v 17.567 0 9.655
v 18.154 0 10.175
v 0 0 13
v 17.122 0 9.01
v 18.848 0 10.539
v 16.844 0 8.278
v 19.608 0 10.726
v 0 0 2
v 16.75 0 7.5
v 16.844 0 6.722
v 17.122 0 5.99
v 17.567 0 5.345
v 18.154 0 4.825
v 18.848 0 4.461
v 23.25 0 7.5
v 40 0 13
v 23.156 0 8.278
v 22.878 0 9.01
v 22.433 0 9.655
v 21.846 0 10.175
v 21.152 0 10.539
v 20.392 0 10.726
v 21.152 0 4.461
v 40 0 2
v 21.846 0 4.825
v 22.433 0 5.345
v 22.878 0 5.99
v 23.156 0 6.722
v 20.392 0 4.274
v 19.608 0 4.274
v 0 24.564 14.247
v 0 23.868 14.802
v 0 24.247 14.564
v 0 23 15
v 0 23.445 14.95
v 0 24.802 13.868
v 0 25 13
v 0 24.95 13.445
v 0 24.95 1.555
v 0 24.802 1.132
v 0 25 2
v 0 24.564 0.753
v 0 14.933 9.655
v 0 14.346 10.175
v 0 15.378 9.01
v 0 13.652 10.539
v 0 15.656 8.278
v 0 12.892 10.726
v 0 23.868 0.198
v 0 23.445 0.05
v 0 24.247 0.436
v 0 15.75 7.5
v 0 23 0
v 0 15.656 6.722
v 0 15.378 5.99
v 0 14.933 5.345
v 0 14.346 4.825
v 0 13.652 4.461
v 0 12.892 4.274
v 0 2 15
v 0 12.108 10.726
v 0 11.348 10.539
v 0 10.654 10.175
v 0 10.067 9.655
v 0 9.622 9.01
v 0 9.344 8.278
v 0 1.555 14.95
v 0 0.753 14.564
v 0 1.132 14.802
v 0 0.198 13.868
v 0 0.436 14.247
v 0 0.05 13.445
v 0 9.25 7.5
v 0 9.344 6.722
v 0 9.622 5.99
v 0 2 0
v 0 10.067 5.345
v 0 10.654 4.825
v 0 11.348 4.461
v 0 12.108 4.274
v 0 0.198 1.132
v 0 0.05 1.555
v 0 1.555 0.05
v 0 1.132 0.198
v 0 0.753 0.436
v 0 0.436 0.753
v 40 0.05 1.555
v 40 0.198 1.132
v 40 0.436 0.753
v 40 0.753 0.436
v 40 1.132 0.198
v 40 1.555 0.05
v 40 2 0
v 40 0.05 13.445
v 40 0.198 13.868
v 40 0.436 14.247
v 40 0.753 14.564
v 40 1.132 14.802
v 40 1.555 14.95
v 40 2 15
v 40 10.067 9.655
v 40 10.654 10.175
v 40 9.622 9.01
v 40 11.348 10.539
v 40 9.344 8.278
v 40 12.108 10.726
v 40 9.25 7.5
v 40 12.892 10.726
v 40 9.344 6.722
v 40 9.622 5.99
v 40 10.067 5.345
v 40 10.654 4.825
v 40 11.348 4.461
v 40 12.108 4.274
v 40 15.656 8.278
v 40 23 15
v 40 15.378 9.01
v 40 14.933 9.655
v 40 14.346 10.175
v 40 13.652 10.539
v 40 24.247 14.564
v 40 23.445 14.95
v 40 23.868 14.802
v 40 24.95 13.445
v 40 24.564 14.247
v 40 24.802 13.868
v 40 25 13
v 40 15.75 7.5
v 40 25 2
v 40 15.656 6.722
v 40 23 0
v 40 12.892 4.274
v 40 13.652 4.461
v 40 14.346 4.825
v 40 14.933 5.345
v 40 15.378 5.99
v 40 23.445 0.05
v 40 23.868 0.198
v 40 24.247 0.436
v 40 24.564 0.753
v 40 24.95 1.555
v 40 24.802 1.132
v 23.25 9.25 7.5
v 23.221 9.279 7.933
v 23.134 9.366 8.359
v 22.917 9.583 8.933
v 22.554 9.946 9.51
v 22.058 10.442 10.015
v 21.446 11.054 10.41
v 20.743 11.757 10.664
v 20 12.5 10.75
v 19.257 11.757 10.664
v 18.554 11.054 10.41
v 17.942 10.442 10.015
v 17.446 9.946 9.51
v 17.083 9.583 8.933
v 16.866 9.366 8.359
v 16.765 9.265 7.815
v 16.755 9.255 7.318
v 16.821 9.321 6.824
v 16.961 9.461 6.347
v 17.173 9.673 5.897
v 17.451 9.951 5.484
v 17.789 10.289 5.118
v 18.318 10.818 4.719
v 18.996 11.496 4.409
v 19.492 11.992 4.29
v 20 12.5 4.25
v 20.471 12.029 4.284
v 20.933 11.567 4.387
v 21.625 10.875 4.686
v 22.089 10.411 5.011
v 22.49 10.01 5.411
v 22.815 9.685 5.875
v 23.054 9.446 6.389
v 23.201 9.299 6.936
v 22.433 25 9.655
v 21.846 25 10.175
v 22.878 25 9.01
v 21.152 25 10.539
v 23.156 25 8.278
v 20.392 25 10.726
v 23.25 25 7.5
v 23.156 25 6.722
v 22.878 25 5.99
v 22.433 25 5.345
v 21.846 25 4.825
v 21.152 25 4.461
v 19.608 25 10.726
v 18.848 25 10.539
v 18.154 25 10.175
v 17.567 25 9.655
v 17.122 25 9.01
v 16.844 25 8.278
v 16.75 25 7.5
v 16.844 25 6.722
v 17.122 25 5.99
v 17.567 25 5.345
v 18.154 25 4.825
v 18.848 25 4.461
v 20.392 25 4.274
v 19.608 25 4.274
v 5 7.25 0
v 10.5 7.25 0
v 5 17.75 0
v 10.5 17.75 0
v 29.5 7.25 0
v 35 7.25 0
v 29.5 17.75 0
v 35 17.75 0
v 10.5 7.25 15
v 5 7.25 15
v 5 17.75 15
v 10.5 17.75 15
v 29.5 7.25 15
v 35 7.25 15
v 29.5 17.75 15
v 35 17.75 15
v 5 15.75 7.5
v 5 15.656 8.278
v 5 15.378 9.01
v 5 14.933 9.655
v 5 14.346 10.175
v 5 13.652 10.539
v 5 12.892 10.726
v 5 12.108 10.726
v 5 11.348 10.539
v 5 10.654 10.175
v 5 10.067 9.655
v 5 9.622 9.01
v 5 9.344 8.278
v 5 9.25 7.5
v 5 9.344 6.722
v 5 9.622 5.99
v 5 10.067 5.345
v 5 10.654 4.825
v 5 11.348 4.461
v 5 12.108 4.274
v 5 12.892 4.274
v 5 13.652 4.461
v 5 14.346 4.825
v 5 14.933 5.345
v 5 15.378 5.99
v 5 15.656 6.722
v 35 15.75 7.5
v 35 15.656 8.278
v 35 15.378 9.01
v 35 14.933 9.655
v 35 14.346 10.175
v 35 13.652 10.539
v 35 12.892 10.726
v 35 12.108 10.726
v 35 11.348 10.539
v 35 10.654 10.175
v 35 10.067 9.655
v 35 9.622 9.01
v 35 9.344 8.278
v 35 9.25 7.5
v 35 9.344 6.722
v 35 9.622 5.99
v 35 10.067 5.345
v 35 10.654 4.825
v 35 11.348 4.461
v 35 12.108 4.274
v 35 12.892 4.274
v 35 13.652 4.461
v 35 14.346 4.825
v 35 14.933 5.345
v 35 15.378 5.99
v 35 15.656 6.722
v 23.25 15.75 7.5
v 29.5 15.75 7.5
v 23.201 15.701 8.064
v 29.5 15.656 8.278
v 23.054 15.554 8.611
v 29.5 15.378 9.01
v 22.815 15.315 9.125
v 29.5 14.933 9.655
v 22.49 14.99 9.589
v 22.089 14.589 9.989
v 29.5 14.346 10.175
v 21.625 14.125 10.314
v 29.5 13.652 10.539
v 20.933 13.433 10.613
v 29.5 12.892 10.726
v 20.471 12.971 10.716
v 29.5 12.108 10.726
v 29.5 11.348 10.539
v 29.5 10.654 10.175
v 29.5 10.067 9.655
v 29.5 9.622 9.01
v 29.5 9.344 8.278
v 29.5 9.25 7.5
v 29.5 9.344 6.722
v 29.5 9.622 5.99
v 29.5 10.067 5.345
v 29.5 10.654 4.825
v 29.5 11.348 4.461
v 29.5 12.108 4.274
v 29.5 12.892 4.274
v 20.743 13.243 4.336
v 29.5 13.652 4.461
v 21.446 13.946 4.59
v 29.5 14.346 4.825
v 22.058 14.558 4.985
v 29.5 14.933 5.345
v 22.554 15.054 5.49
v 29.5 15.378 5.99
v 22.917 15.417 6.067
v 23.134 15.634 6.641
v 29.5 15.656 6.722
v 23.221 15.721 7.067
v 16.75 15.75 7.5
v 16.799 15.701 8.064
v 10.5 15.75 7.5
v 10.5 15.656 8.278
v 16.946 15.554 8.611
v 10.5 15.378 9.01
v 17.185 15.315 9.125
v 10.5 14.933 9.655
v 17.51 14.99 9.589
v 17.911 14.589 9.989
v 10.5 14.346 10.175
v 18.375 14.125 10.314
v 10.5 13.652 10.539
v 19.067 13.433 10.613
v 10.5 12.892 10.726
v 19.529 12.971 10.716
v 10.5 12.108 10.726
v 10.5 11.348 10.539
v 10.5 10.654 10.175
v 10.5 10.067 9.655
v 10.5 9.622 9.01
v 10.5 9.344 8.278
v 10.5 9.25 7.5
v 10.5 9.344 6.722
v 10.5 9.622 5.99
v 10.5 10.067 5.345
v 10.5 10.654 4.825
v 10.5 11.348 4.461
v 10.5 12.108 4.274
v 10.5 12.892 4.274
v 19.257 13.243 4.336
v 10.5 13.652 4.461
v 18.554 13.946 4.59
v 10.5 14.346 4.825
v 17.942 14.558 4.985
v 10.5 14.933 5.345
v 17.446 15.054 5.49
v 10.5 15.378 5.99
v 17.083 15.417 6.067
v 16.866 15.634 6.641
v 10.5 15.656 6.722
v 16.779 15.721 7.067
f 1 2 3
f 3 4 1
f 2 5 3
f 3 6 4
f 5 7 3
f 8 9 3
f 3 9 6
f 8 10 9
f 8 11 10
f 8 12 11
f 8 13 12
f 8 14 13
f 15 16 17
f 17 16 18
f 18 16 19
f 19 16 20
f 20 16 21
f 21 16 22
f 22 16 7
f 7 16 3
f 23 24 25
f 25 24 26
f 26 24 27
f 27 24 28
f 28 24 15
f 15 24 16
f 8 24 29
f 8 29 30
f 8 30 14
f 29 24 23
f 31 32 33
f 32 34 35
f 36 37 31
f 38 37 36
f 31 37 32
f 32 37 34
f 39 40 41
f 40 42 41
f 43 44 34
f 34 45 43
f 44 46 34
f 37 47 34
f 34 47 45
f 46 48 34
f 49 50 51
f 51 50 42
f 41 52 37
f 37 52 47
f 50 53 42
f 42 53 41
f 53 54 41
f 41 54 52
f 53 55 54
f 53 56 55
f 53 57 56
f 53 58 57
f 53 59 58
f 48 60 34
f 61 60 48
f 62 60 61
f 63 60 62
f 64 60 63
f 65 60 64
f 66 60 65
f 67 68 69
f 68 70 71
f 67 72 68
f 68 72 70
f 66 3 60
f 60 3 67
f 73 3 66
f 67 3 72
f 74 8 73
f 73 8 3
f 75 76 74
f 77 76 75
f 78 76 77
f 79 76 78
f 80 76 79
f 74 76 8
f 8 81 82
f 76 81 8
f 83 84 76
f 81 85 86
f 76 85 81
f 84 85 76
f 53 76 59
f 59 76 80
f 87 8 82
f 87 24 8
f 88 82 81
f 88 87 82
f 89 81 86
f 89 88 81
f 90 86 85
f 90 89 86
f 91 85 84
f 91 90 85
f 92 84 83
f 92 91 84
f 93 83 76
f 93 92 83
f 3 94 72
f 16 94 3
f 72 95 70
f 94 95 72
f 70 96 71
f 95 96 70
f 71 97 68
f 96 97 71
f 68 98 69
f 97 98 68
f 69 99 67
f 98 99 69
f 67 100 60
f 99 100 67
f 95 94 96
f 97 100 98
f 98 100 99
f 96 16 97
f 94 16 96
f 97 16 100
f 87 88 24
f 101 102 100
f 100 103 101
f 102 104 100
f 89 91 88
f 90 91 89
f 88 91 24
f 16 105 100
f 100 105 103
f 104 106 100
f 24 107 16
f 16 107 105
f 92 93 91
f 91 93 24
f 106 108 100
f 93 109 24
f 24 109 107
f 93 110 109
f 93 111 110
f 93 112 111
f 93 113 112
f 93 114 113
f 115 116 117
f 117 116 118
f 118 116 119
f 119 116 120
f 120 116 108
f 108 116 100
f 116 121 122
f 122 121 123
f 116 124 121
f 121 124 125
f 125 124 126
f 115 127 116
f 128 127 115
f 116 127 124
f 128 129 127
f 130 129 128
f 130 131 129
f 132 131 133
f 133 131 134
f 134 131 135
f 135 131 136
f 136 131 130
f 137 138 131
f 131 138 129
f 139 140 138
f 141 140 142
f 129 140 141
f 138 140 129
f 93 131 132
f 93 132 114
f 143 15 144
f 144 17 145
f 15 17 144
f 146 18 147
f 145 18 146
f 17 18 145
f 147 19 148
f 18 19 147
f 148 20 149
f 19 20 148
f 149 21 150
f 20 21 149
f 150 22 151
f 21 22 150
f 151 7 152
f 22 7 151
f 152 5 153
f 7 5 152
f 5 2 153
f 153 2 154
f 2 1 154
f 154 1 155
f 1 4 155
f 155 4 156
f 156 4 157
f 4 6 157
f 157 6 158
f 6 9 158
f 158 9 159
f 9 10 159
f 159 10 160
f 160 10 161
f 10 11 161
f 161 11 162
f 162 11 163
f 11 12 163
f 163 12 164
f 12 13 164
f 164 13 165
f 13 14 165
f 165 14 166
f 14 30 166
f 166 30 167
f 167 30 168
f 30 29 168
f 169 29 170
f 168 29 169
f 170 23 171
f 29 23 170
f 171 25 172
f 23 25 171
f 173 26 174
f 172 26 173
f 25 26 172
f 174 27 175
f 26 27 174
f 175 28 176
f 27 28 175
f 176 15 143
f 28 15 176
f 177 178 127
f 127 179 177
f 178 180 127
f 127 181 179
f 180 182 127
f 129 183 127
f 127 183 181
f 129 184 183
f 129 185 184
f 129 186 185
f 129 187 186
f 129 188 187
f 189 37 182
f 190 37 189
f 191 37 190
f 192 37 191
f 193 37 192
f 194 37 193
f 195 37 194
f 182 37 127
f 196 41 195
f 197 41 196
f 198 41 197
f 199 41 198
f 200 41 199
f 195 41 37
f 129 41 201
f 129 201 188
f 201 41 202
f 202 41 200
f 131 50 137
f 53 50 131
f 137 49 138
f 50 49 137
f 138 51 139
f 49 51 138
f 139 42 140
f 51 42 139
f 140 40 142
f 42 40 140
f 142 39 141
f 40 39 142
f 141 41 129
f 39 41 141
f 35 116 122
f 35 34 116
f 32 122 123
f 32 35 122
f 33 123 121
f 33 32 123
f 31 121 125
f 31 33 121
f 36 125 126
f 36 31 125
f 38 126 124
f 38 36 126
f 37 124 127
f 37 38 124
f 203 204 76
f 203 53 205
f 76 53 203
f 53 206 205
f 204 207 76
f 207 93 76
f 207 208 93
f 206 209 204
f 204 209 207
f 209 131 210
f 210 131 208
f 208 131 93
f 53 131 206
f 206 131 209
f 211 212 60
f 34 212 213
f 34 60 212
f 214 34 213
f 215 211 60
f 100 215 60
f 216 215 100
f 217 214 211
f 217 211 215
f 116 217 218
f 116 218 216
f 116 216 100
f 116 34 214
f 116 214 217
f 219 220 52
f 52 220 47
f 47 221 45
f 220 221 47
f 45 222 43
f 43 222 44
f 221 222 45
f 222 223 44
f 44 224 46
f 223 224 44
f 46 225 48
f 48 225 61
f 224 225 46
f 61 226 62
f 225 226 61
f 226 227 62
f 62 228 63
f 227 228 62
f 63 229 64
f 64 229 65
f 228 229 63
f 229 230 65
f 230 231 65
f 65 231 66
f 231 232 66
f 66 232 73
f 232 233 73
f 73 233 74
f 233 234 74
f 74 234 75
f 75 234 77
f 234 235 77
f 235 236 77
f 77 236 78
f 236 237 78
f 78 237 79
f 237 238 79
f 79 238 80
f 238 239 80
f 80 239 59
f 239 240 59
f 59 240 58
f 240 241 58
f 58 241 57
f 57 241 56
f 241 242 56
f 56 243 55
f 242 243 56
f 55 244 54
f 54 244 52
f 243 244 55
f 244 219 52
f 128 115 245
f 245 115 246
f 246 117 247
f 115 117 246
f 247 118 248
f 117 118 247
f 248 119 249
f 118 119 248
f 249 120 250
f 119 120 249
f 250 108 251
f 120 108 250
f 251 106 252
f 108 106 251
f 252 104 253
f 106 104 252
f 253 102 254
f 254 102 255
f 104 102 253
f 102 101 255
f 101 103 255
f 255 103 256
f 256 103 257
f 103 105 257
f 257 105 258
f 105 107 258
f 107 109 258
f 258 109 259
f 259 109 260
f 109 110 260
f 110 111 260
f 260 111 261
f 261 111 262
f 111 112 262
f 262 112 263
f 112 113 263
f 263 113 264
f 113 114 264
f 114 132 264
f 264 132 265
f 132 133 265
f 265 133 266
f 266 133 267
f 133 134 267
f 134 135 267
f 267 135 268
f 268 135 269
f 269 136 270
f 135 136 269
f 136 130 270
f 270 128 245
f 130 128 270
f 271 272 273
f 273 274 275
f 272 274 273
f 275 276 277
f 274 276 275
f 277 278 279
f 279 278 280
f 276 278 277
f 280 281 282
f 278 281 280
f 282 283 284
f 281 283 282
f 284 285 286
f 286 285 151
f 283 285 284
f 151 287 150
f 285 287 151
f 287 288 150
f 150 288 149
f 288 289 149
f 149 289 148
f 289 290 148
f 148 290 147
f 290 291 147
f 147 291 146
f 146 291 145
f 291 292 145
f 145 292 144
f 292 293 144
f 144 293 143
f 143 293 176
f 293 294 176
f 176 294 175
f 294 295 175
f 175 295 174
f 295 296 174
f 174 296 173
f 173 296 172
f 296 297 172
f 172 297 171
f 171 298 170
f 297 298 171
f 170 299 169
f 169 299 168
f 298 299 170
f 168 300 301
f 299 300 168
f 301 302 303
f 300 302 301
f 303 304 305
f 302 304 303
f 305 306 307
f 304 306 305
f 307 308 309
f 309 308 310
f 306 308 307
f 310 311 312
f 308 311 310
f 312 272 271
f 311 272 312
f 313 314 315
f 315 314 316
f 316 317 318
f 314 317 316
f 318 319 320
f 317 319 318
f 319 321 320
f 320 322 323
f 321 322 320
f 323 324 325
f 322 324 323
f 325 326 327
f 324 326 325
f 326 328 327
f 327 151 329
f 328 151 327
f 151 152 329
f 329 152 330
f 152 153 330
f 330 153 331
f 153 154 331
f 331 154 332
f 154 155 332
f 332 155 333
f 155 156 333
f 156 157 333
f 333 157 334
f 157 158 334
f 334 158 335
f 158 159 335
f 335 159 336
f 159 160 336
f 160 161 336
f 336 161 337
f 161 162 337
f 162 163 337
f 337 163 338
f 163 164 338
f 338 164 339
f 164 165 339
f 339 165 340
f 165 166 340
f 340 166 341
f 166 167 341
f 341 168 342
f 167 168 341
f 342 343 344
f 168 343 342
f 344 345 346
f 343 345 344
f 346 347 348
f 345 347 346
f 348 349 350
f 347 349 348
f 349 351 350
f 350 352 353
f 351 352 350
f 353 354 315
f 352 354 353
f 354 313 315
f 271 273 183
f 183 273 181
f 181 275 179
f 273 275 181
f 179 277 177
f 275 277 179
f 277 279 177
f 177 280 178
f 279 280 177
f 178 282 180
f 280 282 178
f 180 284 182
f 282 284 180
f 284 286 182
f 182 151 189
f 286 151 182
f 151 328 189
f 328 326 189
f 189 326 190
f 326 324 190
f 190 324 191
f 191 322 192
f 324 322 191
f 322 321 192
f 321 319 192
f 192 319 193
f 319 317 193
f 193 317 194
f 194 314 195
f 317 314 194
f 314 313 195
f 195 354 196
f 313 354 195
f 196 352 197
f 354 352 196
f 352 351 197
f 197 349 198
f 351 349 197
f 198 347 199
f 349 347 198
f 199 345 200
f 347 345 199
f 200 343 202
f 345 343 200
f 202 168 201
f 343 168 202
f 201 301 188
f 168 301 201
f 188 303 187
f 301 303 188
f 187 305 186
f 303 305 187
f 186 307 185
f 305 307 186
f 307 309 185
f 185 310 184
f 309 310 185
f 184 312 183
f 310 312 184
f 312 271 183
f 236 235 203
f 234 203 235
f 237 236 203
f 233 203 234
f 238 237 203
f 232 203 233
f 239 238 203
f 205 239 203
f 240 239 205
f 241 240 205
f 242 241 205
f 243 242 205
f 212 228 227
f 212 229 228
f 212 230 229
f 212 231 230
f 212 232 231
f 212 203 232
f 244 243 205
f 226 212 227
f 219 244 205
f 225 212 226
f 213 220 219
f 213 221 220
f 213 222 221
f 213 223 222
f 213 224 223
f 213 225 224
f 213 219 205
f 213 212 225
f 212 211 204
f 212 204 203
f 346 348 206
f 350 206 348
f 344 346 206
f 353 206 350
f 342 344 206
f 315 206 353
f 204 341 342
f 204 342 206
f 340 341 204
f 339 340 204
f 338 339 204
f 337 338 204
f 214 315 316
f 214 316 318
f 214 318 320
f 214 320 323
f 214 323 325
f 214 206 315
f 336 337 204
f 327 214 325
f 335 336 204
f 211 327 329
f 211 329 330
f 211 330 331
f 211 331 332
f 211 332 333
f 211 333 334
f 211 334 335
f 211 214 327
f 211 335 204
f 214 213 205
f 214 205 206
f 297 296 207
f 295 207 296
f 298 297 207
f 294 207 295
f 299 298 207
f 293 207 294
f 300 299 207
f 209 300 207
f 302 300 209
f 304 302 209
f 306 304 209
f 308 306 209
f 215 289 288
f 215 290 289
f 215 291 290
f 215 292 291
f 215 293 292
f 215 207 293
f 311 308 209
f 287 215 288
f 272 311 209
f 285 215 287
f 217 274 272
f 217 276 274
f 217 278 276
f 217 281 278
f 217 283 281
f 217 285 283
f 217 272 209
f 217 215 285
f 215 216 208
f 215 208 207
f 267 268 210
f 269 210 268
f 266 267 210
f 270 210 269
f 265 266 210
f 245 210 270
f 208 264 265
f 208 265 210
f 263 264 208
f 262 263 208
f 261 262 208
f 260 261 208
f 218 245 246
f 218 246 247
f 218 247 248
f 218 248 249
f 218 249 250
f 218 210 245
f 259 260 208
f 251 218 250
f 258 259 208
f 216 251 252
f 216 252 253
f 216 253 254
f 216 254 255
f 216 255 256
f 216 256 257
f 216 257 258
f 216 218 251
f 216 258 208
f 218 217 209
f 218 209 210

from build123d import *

# Parameters (mm, degrees)
SKETCH_W        = 40
SKETCH_H        = 25
PAD_DEPTH       = 15
SKETCH001_R     = 3.25
POCKET_DEPTH    = 40.001
SKETCH002_R     = 3.25
POCKET001_DEPTH = 25.001
SKETCH003_W     = 5.5
SKETCH003_H     = 10.5
POCKET002_DEPTH = 15.001
FILLET_R        = 2


with BuildPart() as part:
    # Sketch → Pad (new body)
    with BuildSketch(Plane.XY):
        with Locations((20, 12.5)):
            Rectangle(SKETCH_W, SKETCH_H)
    extrude(amount=PAD_DEPTH)

    # Sketch001 (on Face2 of Pad) → Pocket (cut, through all)
    with BuildSketch(Plane.YZ.offset(40)):
        with Locations((12.5, 7.5)):
            Circle(SKETCH001_R)
    extrude(amount=-POCKET_DEPTH, mode=Mode.SUBTRACT)

    # Sketch002 (on Face1 of Pocket) → Pocket001 (cut, through all)
    with BuildSketch(Plane.XZ):
        with Locations((20, 7.5)):
            Circle(SKETCH002_R)
    extrude(amount=-POCKET001_DEPTH, mode=Mode.SUBTRACT)

    # Sketch003 (on Face4 of Pocket001) → Pocket002 (cut, through all)
    with BuildSketch(Plane.XY.offset(15)):
        with Locations((7.75, 12.5)):
            Rectangle(SKETCH003_W, SKETCH003_H)
        with Locations((32.25, 12.5)):
            Rectangle(SKETCH003_W, SKETCH003_H)
    extrude(amount=-POCKET002_DEPTH, mode=Mode.SUBTRACT)

    # Fillet
    fillet_edges = [part.edges().sort_by_distance(p)[0] for p in [
        (20, 0, 15),
        (20, 0, 0),
        (20, 25, 15),
        (20, 25, 0),
    ]]
    fillet(fillet_edges, radius=FILLET_R)


solid = part.part
